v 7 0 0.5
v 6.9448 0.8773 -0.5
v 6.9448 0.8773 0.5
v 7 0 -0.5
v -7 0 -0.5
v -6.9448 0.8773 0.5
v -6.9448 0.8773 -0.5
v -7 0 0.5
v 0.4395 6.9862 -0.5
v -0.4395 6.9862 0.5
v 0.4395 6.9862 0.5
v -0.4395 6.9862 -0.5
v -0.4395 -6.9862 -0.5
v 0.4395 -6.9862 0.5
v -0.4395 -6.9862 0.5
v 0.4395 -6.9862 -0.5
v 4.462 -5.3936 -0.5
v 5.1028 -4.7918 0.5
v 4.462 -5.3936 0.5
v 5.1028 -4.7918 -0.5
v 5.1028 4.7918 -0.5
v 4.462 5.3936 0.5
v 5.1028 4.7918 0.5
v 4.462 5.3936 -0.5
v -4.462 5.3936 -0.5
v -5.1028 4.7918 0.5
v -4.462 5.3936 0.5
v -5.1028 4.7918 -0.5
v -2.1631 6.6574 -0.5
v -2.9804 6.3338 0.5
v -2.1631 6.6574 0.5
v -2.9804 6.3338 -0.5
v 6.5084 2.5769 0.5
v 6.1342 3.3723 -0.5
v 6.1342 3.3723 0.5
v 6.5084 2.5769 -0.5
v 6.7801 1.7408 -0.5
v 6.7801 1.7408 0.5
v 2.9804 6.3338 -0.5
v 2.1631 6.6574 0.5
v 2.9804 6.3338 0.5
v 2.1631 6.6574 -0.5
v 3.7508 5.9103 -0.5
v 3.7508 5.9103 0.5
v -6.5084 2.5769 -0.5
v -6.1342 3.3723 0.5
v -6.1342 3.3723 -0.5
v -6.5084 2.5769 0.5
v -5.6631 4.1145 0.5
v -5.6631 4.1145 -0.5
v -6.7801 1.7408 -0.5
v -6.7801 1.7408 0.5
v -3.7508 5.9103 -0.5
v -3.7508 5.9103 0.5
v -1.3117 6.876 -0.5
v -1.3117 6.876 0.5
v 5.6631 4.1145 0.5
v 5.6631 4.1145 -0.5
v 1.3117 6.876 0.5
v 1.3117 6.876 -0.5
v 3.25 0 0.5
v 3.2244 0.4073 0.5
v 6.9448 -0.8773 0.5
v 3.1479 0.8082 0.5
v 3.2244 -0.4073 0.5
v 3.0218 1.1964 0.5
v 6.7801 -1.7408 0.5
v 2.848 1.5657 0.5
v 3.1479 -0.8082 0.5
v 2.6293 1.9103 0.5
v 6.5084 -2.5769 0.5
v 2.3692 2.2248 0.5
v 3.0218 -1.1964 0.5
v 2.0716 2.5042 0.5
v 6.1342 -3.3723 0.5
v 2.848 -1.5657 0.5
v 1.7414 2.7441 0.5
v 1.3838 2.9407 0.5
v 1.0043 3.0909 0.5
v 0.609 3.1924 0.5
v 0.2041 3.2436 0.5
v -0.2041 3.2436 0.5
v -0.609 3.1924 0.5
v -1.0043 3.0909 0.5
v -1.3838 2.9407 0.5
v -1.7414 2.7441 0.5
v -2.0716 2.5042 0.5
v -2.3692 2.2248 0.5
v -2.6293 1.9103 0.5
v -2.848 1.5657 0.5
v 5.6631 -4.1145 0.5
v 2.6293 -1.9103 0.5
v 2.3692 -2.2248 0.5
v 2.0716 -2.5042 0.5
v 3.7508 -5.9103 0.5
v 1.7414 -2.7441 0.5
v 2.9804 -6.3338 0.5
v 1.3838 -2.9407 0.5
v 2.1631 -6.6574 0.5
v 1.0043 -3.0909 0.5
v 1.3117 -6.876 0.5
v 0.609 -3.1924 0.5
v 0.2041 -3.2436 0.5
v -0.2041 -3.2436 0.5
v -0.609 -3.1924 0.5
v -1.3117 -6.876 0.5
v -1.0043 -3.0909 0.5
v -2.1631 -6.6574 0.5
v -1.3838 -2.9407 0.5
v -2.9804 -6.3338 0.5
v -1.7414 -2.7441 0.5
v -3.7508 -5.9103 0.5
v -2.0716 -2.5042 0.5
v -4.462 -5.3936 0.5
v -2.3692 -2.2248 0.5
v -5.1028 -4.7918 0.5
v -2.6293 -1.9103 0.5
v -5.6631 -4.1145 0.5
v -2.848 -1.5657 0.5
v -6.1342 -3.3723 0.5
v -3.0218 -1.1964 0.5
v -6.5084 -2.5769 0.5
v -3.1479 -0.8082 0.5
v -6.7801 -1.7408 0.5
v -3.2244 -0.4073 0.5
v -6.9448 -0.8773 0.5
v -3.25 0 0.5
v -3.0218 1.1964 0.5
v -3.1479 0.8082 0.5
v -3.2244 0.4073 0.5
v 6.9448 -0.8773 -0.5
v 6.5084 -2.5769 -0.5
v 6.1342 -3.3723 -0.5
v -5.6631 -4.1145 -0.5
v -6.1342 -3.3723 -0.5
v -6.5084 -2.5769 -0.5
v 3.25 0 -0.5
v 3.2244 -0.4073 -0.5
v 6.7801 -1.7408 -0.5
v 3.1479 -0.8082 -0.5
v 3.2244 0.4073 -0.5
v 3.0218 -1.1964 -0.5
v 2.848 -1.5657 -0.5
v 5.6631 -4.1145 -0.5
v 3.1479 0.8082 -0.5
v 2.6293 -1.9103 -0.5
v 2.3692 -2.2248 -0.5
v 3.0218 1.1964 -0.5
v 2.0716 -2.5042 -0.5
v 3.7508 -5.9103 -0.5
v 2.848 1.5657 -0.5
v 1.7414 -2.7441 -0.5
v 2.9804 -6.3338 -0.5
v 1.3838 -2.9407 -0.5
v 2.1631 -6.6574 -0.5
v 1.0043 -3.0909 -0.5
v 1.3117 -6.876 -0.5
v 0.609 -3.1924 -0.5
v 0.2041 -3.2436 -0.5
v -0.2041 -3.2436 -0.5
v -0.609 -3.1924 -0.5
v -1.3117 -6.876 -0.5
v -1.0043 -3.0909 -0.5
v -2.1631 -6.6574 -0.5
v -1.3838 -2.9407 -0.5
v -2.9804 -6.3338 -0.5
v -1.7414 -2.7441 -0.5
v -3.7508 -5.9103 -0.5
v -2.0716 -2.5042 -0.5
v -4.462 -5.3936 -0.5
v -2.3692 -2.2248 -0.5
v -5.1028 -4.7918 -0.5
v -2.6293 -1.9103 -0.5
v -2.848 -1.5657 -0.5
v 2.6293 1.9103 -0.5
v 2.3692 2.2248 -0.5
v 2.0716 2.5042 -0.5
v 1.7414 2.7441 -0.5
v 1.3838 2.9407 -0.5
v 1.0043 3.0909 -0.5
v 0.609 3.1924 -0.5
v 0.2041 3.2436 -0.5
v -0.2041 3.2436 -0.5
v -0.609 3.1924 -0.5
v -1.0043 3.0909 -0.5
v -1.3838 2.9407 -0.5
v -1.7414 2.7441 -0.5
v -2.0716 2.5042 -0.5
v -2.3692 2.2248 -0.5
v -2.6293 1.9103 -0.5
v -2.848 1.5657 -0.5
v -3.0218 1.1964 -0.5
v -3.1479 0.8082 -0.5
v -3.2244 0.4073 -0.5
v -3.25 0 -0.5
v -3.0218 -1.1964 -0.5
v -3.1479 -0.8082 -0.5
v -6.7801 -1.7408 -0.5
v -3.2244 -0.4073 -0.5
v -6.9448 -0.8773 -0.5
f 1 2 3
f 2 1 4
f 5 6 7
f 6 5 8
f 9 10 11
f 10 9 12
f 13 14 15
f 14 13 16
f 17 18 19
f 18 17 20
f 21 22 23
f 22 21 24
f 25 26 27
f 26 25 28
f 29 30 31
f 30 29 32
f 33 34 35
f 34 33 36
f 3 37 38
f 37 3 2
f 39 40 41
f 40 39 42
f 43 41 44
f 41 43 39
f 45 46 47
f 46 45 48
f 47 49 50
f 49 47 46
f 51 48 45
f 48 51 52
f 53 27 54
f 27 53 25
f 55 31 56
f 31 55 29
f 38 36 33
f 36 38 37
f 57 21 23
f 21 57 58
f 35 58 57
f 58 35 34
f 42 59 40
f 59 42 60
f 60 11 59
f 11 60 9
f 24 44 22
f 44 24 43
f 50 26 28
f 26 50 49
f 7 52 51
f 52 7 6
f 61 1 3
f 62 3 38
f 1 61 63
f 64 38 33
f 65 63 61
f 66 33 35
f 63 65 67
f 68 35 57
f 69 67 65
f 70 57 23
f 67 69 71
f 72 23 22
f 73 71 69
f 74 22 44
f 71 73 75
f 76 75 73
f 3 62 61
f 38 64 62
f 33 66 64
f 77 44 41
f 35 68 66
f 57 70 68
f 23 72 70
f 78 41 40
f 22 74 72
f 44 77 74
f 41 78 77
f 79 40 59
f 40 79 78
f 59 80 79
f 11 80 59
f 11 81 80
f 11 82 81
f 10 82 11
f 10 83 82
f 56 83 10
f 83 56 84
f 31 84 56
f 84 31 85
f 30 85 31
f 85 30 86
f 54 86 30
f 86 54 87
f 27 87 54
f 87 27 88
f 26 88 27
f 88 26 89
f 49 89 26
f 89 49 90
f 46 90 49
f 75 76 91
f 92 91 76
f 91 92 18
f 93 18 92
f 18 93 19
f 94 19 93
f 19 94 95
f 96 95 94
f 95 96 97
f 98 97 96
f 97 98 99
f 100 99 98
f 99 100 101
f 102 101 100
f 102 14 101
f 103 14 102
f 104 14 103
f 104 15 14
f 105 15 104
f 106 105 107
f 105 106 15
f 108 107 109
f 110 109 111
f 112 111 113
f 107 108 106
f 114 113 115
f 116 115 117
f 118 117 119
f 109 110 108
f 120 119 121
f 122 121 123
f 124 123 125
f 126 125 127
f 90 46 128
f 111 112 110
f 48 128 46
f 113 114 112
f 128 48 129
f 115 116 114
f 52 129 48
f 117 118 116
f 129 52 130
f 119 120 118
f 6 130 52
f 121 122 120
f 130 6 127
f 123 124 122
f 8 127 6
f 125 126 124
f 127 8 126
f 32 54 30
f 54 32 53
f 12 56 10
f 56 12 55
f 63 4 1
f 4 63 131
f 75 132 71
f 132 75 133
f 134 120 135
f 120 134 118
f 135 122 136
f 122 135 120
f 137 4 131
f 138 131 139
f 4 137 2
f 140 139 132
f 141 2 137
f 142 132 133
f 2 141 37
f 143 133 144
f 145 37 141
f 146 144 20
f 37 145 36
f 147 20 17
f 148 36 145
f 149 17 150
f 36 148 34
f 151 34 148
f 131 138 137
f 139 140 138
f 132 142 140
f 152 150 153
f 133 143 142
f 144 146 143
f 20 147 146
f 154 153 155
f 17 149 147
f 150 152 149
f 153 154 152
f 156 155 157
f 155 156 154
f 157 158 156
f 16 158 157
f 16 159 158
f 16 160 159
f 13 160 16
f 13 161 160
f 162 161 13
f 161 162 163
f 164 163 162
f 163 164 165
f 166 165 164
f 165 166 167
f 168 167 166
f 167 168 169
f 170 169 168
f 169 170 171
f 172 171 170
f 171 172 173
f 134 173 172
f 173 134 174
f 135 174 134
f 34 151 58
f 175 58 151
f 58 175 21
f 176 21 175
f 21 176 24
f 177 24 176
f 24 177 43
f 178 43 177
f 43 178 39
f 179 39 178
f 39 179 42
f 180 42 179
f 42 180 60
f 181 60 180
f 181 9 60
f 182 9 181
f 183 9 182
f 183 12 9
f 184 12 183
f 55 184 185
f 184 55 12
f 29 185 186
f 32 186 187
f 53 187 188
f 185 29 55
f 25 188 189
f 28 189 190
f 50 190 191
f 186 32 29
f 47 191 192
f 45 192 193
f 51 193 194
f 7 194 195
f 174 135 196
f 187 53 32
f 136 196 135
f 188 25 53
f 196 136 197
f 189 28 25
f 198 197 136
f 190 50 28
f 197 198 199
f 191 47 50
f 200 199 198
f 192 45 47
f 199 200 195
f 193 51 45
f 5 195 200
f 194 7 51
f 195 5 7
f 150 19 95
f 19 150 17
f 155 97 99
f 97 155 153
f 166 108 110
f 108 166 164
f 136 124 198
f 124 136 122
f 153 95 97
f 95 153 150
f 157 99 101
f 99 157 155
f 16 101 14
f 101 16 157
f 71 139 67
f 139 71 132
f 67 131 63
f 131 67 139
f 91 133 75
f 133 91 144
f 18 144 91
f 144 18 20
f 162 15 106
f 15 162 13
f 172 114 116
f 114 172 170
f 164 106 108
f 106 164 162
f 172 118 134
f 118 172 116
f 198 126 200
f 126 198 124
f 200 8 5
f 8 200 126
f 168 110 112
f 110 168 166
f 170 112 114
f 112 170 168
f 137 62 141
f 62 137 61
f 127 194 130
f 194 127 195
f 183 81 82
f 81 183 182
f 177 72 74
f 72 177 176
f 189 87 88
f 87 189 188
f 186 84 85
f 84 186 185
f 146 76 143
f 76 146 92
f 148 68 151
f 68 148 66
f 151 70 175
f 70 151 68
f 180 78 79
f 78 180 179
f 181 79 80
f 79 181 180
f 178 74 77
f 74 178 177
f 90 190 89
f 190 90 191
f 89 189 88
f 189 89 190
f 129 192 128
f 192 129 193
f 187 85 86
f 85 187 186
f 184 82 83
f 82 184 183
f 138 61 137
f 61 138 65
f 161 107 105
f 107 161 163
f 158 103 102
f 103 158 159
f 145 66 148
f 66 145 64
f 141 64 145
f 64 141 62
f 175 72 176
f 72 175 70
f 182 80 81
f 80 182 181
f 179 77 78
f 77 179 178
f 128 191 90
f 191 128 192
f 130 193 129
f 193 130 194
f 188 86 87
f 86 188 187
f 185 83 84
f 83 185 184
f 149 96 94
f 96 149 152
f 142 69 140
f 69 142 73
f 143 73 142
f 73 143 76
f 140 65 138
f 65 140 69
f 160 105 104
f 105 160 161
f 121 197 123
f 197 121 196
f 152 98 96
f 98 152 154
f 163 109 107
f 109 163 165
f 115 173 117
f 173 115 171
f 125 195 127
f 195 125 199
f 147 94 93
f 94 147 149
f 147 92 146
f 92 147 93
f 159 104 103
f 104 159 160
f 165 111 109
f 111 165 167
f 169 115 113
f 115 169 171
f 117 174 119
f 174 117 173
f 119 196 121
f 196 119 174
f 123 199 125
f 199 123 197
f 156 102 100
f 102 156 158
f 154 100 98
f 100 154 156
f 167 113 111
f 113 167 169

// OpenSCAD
$fn = 50;


difference() {
	union() {
		translate(v = [0, 0, -0.5000000000]) {
			cylinder(h = 1, r = 7.0000000000);
		}
	}
	union() {
		translate(v = [0, 0, -100.0000000000]) {
			cylinder(h = 200, r = 3.2500000000);
		}
	}
}
